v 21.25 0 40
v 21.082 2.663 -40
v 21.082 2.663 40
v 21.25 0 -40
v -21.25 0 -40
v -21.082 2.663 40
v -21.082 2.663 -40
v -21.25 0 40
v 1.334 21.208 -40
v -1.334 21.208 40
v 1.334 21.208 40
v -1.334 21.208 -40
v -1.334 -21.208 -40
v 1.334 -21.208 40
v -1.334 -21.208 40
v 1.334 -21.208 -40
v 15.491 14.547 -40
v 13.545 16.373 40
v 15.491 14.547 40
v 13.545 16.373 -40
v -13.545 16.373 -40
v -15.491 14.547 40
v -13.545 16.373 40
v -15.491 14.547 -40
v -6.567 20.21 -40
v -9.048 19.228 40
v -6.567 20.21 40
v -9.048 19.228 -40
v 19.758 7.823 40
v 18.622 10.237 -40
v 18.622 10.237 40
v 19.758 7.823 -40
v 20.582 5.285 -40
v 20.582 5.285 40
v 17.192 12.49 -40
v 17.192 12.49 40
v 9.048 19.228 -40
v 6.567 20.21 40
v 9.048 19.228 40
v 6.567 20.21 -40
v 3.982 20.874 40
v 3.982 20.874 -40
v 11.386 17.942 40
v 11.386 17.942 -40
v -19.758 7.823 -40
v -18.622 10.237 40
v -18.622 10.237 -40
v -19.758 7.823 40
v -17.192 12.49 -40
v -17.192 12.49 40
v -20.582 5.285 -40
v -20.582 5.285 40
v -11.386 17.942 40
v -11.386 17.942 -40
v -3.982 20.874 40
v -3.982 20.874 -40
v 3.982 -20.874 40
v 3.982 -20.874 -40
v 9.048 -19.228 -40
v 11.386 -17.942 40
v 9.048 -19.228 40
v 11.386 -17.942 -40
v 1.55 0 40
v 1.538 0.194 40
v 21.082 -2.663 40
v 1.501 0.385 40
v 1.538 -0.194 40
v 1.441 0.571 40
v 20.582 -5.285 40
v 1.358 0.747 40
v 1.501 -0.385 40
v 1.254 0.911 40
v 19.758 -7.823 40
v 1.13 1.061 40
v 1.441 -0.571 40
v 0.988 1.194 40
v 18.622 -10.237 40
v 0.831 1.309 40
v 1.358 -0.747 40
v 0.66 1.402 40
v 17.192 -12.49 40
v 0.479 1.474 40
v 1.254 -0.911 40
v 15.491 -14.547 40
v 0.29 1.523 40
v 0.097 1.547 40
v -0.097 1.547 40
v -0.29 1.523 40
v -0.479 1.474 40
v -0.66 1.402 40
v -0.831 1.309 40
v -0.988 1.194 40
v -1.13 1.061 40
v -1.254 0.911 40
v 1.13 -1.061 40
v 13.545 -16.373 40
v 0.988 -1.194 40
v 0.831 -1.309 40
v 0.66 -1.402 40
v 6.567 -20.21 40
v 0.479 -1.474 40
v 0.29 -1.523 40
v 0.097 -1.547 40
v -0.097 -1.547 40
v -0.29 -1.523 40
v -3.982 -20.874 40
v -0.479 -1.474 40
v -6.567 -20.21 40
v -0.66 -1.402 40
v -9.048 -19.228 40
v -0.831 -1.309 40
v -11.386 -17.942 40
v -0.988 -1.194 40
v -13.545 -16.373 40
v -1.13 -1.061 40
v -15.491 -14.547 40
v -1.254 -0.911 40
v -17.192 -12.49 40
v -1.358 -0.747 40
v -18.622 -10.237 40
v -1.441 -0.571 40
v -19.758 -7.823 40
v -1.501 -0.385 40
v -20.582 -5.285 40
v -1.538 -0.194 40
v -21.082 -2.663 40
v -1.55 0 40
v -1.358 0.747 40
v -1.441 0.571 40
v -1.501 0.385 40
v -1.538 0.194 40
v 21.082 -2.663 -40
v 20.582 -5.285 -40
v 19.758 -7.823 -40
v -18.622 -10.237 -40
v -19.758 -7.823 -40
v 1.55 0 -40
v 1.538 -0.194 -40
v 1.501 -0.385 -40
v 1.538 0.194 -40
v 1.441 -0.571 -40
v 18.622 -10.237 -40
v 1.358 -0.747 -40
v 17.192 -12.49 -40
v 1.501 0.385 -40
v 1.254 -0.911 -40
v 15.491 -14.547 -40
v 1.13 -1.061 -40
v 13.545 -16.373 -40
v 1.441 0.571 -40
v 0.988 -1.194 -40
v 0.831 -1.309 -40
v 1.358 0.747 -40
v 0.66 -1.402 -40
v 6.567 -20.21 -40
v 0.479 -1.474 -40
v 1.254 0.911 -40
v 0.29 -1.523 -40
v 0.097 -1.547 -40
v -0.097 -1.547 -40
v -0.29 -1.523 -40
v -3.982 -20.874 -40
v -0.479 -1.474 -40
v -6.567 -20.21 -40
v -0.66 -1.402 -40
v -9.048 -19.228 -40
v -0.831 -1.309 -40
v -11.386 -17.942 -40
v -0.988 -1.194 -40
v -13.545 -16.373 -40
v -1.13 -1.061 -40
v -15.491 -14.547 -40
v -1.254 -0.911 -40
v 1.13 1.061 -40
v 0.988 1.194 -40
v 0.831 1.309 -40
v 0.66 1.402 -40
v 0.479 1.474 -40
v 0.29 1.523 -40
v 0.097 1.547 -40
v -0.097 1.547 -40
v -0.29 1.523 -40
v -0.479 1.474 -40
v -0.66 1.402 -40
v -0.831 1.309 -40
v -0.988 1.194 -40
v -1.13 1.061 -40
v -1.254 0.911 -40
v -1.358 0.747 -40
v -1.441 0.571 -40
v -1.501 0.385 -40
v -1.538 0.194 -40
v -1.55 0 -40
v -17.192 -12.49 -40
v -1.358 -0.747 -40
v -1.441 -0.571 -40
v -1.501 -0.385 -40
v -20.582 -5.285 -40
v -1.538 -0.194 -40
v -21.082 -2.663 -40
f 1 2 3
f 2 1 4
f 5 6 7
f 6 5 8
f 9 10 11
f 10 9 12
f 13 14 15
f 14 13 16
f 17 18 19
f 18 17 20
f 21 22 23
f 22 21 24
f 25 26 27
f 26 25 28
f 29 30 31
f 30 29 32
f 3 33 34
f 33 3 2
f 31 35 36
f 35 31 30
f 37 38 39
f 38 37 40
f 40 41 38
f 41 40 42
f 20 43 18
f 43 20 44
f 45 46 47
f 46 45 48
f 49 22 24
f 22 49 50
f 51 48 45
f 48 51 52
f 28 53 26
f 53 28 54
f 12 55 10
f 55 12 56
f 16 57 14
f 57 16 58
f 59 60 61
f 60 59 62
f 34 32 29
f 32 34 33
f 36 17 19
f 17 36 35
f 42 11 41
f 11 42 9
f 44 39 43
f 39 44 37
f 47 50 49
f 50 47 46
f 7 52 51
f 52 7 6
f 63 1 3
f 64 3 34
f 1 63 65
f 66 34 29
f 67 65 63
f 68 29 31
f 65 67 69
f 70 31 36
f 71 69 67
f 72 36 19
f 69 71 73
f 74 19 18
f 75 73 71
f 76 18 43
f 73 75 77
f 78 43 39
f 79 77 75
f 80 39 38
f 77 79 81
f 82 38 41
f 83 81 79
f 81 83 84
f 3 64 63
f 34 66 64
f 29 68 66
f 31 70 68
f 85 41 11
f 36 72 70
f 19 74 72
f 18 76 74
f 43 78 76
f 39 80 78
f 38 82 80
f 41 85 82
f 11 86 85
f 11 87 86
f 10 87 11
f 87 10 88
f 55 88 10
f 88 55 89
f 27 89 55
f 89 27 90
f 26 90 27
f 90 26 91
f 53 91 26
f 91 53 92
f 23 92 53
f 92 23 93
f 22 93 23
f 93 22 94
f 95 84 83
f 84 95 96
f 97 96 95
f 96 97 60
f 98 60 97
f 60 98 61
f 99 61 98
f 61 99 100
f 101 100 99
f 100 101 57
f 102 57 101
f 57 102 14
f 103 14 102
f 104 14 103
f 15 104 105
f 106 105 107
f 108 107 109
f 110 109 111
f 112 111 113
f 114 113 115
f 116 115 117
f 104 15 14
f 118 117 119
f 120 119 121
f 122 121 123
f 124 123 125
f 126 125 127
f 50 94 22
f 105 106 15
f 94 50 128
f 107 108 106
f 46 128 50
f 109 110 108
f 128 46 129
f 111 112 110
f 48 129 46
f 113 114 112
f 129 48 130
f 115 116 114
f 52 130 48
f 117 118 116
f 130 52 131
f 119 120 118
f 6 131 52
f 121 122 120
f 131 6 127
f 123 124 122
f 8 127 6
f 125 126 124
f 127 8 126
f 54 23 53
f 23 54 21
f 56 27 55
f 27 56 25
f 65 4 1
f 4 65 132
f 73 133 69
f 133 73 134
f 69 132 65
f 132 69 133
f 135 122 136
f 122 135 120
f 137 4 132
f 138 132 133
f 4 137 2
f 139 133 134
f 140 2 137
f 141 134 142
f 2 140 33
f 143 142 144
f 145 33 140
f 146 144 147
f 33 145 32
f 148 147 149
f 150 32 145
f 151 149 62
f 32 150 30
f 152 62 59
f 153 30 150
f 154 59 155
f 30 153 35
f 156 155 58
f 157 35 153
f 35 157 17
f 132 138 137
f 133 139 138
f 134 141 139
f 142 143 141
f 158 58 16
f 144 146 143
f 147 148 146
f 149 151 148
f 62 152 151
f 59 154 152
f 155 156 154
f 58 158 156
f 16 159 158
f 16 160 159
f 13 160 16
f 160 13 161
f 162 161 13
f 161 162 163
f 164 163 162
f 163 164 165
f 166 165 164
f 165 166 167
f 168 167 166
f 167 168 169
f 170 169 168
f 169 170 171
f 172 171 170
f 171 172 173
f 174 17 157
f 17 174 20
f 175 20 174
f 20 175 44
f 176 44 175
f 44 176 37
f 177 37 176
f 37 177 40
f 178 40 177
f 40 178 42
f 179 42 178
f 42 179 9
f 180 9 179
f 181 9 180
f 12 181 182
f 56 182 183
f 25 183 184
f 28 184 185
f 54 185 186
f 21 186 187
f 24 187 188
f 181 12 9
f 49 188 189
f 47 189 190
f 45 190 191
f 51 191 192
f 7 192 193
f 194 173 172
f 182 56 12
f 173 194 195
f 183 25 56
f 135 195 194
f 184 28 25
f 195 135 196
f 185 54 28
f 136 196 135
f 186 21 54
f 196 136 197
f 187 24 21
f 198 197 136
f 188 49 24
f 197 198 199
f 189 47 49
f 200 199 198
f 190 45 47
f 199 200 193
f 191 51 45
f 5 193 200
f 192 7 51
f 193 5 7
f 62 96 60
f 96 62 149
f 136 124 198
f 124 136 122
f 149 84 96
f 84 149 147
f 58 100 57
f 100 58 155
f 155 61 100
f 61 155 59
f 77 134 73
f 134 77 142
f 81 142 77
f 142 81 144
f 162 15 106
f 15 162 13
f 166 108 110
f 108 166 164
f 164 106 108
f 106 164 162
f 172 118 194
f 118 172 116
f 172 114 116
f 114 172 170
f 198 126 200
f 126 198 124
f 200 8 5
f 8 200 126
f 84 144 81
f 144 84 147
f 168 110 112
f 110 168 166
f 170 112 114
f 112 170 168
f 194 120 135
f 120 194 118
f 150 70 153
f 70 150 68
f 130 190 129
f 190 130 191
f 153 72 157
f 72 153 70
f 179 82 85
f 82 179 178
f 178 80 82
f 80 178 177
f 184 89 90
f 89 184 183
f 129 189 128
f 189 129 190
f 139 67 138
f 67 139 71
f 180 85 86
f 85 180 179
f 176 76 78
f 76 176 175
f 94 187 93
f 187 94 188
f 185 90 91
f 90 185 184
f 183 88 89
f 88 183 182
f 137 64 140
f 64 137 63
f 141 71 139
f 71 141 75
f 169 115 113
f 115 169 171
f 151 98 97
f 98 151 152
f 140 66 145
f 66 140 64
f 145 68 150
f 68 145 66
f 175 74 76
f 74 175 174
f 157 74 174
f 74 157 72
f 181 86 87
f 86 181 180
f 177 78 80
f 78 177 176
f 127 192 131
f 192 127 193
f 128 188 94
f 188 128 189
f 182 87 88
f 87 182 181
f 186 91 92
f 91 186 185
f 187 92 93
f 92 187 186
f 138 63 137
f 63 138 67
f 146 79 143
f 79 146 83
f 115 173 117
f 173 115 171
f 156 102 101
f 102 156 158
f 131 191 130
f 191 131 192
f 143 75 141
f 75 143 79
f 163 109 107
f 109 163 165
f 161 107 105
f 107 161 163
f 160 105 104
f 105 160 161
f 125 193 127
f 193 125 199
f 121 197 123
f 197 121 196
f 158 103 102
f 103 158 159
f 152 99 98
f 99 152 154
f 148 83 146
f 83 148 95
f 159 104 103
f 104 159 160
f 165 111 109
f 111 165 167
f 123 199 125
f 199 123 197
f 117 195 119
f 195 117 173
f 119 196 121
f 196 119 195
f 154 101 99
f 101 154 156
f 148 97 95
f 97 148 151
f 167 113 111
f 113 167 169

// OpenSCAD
$fn = 50;


difference() {
	union() {
		translate(v = [0, 0, -40.0000000000]) {
			cylinder(h = 80, r = 21.2500000000);
		}
	}
	union() {
		translate(v = [0, 0, -100.0000000000]) {
			cylinder(h = 200, r = 1.5500000000);
		}
	}
}
